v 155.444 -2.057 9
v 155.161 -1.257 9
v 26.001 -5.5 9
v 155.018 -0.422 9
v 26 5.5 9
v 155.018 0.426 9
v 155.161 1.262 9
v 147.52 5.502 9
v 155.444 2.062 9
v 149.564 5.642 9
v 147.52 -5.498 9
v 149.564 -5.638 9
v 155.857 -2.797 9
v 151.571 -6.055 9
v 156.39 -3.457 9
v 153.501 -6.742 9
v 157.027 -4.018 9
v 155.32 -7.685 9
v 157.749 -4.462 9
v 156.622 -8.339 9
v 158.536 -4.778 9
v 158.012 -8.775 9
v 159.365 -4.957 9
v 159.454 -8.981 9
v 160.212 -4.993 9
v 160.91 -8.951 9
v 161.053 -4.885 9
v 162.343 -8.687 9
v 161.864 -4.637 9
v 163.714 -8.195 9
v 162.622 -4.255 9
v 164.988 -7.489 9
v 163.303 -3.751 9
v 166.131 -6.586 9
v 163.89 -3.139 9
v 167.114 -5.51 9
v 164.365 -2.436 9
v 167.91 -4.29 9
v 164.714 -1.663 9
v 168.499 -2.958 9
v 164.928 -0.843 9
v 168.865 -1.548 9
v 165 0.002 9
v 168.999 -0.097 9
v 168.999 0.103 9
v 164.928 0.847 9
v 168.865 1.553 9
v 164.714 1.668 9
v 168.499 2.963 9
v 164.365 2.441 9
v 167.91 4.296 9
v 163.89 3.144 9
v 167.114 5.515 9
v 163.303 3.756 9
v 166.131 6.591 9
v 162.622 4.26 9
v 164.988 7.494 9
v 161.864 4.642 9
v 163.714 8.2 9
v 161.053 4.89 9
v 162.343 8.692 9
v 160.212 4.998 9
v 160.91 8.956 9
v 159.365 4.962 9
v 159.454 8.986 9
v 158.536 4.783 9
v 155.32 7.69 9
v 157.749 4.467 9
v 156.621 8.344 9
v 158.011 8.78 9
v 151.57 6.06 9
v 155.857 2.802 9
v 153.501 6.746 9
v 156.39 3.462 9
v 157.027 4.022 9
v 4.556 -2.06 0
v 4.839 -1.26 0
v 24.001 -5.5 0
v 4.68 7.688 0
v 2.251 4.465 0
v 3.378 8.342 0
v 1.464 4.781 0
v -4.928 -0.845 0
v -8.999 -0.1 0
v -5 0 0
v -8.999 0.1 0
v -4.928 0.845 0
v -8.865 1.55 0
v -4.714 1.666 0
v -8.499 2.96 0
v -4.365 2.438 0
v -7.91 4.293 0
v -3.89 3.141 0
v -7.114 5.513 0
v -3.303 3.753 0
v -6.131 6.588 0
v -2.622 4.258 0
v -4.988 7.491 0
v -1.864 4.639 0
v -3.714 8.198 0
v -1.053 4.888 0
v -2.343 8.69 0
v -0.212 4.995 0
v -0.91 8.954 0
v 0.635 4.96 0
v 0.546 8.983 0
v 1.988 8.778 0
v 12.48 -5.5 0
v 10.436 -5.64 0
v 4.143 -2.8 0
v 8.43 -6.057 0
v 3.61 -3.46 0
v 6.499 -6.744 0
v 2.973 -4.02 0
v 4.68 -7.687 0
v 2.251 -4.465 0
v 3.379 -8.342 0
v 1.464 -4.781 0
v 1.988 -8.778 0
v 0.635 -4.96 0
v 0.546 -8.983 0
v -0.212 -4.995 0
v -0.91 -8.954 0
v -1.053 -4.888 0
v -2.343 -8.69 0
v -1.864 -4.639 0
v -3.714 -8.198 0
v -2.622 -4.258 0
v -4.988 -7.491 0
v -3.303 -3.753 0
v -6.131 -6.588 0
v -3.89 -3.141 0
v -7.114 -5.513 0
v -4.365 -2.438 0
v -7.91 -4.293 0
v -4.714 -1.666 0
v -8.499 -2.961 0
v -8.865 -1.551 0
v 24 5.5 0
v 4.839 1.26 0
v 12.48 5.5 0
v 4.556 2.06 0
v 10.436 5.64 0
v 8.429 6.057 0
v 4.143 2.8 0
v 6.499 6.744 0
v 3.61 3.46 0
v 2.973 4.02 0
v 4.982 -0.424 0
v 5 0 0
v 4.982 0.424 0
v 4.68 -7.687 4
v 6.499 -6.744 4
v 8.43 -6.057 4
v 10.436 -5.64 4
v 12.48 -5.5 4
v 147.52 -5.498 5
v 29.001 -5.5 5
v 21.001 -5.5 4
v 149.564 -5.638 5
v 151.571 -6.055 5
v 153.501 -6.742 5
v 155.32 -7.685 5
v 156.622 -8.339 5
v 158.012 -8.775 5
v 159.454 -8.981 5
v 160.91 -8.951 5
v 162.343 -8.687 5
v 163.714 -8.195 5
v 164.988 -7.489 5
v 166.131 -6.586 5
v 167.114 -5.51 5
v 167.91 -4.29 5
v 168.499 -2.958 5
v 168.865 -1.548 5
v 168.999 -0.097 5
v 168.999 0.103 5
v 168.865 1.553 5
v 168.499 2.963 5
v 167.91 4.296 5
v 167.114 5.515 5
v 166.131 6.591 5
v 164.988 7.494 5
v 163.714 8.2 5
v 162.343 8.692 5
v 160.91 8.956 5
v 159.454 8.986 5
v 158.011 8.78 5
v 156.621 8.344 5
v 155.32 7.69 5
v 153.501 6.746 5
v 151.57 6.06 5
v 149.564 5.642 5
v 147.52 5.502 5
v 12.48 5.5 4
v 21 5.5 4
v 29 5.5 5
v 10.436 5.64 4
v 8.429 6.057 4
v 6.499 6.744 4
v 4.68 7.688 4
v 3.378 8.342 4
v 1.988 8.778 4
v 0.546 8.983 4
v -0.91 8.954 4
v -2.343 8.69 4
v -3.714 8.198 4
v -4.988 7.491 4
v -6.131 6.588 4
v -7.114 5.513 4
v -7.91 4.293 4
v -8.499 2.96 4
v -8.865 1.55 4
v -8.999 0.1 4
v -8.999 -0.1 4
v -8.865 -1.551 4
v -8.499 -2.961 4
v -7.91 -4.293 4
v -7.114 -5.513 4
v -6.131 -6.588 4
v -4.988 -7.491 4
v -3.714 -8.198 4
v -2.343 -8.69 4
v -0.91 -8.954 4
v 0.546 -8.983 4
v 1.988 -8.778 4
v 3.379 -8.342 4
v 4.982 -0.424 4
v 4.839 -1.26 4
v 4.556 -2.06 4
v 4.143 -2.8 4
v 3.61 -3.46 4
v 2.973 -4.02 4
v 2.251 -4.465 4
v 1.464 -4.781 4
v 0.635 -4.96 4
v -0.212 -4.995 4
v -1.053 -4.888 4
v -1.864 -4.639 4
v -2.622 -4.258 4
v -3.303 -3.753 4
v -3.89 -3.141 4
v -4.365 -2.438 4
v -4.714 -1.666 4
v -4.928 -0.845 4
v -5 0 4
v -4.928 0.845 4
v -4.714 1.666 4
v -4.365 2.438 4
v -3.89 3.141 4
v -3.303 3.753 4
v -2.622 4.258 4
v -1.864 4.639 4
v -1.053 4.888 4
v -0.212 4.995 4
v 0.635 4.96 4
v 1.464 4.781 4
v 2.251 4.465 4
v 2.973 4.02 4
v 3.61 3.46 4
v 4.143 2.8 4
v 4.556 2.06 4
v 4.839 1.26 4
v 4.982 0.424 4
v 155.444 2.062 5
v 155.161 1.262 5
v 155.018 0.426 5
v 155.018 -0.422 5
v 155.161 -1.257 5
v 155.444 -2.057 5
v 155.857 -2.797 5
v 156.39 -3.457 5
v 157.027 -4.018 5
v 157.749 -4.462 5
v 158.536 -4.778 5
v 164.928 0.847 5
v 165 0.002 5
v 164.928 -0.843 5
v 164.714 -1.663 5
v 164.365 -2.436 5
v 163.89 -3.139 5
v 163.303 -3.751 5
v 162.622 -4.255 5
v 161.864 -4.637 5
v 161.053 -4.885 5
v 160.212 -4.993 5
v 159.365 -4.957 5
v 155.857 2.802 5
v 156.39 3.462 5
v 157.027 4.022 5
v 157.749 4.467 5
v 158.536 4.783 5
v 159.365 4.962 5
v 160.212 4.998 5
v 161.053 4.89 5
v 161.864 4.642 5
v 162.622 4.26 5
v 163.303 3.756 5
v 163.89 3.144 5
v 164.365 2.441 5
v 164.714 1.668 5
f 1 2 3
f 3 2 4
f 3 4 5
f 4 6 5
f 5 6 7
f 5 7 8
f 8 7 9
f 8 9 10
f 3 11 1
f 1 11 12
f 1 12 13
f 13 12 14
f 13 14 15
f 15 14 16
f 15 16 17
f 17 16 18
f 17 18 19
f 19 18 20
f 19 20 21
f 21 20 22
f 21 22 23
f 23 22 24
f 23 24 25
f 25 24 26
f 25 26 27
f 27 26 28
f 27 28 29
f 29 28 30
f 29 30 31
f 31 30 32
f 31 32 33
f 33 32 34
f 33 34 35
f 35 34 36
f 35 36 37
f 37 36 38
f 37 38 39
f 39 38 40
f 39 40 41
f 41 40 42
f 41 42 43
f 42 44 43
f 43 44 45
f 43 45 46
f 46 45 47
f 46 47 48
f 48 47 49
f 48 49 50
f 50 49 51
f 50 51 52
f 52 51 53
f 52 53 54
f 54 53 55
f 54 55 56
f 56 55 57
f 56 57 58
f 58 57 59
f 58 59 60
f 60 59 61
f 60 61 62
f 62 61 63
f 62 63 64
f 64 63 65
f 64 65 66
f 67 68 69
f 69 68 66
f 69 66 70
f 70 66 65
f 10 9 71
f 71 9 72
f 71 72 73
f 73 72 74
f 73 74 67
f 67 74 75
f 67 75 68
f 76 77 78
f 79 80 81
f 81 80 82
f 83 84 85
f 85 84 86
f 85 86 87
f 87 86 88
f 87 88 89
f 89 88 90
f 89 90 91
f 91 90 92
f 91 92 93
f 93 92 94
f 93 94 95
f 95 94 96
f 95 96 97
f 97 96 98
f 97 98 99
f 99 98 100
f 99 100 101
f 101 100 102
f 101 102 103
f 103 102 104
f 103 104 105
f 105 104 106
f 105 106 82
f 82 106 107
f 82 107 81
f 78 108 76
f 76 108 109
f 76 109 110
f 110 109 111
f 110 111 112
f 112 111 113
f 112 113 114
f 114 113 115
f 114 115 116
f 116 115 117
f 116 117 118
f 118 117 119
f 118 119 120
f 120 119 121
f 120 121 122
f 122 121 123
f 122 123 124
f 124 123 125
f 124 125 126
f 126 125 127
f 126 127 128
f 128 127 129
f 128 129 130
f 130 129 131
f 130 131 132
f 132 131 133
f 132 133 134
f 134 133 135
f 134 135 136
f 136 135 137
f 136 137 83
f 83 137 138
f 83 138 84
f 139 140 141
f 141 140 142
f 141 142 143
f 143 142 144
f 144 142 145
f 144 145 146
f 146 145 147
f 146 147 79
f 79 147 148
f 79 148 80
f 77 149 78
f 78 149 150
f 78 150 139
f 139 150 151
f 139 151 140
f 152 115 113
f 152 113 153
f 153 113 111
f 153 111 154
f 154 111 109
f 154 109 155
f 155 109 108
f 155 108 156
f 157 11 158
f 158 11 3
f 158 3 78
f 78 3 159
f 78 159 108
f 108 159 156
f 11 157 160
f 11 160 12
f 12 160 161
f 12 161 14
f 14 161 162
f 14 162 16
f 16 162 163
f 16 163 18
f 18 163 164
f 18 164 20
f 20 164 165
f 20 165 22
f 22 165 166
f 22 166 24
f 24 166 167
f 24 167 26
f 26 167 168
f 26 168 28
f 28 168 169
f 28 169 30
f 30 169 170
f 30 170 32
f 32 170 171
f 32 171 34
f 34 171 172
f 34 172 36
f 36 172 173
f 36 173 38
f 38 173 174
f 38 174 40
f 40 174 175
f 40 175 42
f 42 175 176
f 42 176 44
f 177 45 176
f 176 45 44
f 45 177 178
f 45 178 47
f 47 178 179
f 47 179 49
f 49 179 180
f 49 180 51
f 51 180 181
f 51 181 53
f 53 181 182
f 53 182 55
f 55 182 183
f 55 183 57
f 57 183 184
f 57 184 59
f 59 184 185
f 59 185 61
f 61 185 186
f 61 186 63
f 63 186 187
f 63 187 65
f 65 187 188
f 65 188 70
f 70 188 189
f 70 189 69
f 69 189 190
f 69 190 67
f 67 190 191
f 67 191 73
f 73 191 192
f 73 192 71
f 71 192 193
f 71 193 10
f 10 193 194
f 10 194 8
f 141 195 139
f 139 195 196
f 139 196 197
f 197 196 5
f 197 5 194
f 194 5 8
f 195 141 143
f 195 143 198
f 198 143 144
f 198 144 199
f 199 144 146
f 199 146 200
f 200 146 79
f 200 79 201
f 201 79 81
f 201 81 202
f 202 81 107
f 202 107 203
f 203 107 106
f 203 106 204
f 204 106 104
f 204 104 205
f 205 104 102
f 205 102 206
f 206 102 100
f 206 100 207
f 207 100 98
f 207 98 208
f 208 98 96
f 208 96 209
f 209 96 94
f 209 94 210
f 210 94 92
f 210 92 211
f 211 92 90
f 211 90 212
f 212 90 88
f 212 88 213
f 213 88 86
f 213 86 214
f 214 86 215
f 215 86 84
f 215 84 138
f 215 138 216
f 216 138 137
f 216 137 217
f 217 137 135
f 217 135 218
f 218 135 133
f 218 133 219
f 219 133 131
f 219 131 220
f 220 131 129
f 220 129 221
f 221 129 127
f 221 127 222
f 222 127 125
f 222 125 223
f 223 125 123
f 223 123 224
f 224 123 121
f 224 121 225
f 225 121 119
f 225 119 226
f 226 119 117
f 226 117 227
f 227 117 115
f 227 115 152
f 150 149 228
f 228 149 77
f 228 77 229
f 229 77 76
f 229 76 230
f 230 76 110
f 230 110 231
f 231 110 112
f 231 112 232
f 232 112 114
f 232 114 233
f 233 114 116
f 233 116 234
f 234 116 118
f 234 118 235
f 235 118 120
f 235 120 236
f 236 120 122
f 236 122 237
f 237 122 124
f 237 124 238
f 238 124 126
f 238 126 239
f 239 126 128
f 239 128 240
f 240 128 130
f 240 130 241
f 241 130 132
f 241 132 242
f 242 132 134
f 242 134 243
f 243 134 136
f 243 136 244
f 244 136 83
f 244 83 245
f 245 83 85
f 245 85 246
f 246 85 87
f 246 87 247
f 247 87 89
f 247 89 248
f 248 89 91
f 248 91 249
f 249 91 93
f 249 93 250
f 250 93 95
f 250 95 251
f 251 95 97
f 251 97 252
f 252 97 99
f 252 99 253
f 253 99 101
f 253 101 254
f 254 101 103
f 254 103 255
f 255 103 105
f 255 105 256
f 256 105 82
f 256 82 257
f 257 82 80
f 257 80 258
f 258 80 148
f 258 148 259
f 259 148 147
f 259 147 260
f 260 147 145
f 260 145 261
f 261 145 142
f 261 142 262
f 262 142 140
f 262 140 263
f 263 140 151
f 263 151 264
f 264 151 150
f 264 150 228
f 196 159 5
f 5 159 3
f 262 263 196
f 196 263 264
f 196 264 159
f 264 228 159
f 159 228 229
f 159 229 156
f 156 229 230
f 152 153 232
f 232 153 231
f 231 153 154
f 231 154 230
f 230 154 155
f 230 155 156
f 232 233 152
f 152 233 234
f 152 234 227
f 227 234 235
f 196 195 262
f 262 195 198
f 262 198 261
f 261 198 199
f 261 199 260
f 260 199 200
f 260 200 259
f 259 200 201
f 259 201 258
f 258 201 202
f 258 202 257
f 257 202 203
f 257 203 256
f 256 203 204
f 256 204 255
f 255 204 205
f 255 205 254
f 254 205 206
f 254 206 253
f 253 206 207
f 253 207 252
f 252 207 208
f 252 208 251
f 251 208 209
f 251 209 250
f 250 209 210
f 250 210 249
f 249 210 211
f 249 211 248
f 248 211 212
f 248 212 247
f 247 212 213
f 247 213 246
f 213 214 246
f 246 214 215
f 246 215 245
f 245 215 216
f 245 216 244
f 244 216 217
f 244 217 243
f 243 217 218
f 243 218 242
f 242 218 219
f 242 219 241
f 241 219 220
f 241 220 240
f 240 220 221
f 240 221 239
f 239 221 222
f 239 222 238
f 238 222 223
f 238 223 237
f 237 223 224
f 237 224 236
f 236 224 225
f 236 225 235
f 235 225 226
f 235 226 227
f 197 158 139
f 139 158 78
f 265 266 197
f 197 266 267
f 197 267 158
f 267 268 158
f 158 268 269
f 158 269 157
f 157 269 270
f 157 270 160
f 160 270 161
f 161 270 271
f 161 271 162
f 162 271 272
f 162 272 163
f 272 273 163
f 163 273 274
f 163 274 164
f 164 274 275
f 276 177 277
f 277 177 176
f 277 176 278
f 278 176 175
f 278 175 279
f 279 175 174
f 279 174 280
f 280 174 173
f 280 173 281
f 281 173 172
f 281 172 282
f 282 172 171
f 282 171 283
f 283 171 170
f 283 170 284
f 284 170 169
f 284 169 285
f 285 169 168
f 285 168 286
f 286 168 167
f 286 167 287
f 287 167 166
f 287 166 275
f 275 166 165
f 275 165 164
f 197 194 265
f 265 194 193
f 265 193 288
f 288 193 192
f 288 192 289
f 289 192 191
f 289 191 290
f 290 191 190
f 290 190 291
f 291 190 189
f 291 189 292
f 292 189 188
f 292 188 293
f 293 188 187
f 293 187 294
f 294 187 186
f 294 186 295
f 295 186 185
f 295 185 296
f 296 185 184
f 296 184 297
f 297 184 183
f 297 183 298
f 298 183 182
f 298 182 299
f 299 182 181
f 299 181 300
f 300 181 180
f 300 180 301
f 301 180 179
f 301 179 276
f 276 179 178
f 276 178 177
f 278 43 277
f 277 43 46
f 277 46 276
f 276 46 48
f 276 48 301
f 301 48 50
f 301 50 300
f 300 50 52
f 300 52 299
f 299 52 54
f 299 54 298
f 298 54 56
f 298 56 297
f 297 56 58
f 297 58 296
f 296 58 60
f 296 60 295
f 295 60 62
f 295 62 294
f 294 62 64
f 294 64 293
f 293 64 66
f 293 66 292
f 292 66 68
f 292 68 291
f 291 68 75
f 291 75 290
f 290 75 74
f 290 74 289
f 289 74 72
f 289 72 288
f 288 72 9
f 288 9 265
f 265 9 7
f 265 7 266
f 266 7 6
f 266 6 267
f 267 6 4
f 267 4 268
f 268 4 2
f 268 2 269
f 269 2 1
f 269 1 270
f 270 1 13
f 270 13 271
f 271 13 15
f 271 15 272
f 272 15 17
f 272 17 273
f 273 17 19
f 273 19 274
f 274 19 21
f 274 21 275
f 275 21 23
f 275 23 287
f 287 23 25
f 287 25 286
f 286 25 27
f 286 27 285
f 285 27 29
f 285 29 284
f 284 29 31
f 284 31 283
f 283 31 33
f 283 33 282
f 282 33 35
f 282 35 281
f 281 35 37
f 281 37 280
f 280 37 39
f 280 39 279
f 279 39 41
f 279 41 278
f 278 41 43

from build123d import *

# Parameters (mm, degrees)
SKETCH_2_R               = 5
SKETCH_2_R_2             = 1.999999992
EXTRUDE_1_DEPTH          = 9
CUT_EXTRUDE_1_DEPTH      = 170.859032113
CUT_EXTRUDE_1_DEPTH_BACK = 170.859032113
SKETCH_4_R               = 5
CUT_EXTRUDE_2_DEPTH      = 170.478188001


with BuildPart() as part:
    # 草图2 → 凸台-拉伸1 (new body)
    with BuildSketch(Plane.XY):
        with BuildLine():
            Line((147.519937563, 5.502226824), (12.479900949, 5.500188388))
            ThreePointArc((12.479900949, 5.500188388), (8.429429601, 6.057352235), (4.679877945, 7.687570645))
            ThreePointArc((4.679877945, 7.687570645), (-4.365546387, 7.87032431), (-8.999445953, 0.099862608))
            Line((-8.999445953, 0.099862608), (-8.999442934, -0.100134306))
            ThreePointArc((-8.999442934, -0.100134306), (-4.365308776, -7.870456104), (4.680110035, -7.687429353))
            ThreePointArc((4.680110035, -7.687429353), (8.429612472, -6.057097743), (12.480066997, -5.499811611))
            Line((12.480066997, -5.499811611), (147.520099033, -5.497773175))
            ThreePointArc((147.520099033, -5.497773175), (151.570570386, -6.054937034), (155.320122044, -7.68515546))
            ThreePointArc((155.320122044, -7.68515546), (164.365546377, -7.867909125), (168.999445942, -0.097447423))
            Line((168.999445942, -0.097447423), (168.999442923, 0.102549491))
            ThreePointArc((168.999442923, 0.102549491), (164.365308765, 7.87287129), (155.319889955, 7.689844539))
            ThreePointArc((155.319889955, 7.689844539), (151.570389715, 6.05951356), (147.519937563, 5.502226824))
        make_face()
        Circle(SKETCH_2_R, mode=Mode.SUBTRACT)
        with Locations((159.999999989, 0.002415185)):
            Circle(SKETCH_2_R_2, mode=Mode.SUBTRACT)
    extrude(amount=EXTRUDE_1_DEPTH)

    # 草图3 → 切除-拉伸1 (cut, two sides: drawn at the far end of the back side and taken through both)
    with BuildSketch(Plane(origin=(-8.3023e-05, 5.500000002, 0), x_dir=(0.9999999998860698, 1.509504600630928e-05, 0), z_dir=(-1.509504600630928e-05, 0.9999999998860698, 0)).offset(-CUT_EXTRUDE_1_DEPTH_BACK)):
        Polygon((21.000555556, -4), (26.000555556, -9), (-8.999444444, -9), (-8.999444444, -4), align=None)
        Polygon((29.000555556, -5), (24.000555556, 0), (168.999444452, 0), (168.999444452, -5), align=None)
    extrude(amount=CUT_EXTRUDE_1_DEPTH + CUT_EXTRUDE_1_DEPTH_BACK, mode=Mode.SUBTRACT)

    # 草图4 → 切除-拉伸2 (cut, through all)
    with BuildSketch(Plane.XY.offset(9)):
        with Locations((159.999999989, 0.002415185)):
            Circle(SKETCH_4_R)
    extrude(amount=-CUT_EXTRUDE_2_DEPTH, mode=Mode.SUBTRACT)


solid = part.part
